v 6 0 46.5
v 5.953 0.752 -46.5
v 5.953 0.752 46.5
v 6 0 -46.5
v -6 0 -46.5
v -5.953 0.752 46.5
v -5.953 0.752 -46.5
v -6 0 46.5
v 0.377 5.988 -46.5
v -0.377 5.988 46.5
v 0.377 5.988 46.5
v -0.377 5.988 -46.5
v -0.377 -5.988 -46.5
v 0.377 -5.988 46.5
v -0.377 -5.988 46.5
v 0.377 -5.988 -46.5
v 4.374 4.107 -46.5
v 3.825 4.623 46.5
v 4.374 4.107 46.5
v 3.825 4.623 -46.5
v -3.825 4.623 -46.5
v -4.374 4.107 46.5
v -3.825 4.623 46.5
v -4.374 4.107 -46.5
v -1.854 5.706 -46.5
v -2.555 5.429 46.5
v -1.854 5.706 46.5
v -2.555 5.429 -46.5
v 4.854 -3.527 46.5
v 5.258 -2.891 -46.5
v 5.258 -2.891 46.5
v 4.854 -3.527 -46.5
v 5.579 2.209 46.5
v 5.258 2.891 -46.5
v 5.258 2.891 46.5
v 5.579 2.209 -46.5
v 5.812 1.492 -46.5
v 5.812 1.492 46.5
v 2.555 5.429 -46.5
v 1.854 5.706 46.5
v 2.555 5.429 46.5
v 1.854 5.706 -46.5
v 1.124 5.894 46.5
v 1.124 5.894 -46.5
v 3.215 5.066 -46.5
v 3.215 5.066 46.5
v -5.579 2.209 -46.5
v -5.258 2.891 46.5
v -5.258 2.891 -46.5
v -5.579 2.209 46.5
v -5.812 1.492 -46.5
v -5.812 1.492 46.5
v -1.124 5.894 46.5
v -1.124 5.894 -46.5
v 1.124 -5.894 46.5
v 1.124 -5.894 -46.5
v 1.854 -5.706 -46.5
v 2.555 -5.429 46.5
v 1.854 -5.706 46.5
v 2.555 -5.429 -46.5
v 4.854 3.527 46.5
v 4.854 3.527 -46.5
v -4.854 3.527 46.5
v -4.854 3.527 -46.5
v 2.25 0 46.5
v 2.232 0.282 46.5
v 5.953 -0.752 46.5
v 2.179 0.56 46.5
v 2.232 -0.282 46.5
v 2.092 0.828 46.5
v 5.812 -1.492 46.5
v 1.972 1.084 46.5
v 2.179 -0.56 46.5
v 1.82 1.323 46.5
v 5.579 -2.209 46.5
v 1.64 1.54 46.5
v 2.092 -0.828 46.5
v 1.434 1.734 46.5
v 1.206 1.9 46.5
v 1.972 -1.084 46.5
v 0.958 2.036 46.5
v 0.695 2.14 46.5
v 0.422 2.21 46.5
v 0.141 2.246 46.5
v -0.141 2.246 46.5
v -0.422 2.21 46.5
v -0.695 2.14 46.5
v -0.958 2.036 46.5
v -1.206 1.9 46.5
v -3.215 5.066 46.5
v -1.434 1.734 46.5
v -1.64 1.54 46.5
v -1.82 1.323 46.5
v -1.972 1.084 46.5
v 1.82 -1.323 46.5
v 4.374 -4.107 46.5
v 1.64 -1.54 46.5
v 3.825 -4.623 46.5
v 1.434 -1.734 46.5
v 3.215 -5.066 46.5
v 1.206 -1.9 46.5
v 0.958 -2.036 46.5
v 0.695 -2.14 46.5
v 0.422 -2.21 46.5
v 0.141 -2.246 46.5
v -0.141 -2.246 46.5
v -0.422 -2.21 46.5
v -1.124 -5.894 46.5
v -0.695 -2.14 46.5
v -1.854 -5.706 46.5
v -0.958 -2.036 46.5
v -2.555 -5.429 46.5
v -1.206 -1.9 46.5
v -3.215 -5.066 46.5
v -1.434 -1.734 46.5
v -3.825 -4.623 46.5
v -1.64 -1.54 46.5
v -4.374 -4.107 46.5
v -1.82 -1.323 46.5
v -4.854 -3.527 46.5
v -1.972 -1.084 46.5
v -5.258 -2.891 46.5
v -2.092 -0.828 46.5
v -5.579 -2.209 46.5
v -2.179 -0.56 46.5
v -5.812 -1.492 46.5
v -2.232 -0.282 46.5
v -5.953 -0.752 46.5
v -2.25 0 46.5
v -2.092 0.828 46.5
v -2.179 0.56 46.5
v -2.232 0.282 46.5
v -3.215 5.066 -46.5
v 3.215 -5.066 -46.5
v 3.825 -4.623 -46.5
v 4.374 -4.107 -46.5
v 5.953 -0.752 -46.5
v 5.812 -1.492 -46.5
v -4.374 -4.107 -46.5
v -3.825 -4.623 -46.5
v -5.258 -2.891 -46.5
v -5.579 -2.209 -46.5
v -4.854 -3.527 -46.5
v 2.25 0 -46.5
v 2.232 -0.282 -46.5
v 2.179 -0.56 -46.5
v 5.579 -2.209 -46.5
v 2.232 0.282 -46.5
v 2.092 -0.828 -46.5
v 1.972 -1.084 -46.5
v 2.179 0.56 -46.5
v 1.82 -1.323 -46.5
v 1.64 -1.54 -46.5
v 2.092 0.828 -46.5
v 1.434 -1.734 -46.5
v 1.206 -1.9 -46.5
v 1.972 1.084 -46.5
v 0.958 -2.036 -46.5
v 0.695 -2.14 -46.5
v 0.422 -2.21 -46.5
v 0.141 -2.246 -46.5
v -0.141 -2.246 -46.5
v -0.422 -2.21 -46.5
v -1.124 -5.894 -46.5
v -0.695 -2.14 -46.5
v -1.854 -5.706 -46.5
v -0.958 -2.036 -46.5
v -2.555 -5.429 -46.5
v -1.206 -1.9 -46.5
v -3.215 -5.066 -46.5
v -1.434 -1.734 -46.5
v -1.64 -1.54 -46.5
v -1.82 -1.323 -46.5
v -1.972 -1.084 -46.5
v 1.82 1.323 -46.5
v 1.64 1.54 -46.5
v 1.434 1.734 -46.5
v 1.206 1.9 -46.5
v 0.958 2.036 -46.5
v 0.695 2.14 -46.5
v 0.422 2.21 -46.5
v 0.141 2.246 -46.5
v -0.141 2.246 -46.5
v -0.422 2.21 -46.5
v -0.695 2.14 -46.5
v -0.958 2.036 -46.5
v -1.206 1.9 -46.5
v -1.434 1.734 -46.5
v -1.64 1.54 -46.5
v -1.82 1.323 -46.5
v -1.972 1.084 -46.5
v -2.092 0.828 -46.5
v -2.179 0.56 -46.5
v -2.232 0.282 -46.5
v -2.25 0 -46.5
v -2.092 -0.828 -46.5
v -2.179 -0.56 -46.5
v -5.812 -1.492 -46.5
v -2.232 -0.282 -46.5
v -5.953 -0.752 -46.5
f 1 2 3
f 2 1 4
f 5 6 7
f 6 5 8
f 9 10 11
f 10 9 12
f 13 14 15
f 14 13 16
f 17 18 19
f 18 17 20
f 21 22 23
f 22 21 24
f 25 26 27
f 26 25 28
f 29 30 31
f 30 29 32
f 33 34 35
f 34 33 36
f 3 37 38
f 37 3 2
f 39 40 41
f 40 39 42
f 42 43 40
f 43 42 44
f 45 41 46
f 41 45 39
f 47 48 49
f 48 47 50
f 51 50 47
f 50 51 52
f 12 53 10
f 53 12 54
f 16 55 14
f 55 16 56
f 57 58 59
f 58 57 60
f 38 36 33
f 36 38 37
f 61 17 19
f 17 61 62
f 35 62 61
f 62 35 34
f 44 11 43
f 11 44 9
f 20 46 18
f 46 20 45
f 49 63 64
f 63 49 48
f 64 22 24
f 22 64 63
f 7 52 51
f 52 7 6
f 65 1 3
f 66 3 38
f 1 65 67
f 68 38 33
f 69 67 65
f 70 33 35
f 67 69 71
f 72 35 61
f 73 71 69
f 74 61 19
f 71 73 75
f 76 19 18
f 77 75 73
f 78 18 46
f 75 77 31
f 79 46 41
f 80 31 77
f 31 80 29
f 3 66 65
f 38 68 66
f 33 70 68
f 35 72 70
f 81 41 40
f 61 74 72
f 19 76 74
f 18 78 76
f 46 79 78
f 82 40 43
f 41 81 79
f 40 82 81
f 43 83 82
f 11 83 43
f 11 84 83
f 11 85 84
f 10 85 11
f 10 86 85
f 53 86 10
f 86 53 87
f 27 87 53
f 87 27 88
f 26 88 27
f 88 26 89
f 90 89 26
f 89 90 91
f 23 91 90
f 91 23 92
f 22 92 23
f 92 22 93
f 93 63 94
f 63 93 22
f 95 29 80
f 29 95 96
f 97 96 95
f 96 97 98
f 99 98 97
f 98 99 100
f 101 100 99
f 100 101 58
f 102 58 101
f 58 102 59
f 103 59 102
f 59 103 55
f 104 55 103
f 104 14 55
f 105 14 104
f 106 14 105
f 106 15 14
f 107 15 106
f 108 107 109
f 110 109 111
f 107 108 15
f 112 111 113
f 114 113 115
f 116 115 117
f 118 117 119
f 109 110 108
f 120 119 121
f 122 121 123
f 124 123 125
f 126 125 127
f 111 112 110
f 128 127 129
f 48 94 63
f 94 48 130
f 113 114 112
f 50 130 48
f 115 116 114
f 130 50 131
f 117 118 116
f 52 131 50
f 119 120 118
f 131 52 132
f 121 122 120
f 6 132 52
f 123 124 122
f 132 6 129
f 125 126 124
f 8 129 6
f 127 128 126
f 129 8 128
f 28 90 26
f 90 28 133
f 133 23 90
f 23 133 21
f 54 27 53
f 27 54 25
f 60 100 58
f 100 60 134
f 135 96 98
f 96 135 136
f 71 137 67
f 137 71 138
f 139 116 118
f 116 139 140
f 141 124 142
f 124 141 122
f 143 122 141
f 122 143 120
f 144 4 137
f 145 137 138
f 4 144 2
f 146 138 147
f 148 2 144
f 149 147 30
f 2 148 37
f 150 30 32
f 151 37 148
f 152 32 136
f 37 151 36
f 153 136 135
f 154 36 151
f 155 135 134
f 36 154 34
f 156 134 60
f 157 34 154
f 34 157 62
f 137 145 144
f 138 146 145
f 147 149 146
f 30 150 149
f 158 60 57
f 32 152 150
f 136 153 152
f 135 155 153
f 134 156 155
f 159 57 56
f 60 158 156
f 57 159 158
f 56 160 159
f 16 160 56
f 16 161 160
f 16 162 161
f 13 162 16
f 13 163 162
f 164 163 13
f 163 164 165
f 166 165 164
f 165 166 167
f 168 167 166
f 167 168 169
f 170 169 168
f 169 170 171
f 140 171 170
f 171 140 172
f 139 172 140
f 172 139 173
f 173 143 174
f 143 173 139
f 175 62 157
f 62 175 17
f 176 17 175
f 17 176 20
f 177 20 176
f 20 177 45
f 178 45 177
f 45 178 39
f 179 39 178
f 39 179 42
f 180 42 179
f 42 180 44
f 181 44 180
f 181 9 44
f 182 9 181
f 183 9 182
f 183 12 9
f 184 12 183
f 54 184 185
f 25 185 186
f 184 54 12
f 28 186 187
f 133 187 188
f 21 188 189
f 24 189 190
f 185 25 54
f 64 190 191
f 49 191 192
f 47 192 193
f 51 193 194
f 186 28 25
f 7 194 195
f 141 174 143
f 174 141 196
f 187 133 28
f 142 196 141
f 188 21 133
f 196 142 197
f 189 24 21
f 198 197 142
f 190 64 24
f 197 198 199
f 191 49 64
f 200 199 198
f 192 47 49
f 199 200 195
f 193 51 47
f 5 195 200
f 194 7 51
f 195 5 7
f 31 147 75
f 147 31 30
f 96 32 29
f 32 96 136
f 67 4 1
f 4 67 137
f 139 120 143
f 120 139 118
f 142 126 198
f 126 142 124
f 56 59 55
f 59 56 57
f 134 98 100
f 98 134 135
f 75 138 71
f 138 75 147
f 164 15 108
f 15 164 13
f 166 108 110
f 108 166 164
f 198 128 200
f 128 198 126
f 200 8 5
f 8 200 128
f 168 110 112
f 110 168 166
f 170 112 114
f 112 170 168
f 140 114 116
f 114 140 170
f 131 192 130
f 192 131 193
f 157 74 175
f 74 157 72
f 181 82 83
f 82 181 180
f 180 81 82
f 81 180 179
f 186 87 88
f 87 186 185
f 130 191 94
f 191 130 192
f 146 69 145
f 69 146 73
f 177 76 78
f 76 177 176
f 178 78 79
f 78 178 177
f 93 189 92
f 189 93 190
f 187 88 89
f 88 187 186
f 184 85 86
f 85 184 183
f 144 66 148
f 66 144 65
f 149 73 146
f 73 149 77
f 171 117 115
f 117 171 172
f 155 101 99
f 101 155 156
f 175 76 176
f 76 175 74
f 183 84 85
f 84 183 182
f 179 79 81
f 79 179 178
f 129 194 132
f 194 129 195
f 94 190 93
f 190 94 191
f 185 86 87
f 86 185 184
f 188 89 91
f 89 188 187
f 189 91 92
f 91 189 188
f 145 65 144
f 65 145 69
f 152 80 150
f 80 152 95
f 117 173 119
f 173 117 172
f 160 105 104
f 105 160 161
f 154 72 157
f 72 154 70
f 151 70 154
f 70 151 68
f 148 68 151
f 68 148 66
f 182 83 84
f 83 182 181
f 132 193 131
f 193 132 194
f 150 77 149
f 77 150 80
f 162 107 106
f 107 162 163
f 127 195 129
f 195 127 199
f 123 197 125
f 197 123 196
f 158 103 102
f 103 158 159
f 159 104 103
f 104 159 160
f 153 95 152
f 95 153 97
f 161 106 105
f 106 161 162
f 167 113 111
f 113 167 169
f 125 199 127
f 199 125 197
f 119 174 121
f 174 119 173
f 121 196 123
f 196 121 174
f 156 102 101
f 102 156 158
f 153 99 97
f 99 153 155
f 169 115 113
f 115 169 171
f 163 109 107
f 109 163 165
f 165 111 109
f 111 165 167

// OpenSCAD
$fn = 50;


difference() {
	union() {
		translate(v = [0, 0, -46.5000000000]) {
			cylinder(h = 93, r = 6.0000000000);
		}
	}
	union() {
		translate(v = [0, 0, -100.0000000000]) {
			cylinder(h = 200, r = 2.2500000000);
		}
	}
}
